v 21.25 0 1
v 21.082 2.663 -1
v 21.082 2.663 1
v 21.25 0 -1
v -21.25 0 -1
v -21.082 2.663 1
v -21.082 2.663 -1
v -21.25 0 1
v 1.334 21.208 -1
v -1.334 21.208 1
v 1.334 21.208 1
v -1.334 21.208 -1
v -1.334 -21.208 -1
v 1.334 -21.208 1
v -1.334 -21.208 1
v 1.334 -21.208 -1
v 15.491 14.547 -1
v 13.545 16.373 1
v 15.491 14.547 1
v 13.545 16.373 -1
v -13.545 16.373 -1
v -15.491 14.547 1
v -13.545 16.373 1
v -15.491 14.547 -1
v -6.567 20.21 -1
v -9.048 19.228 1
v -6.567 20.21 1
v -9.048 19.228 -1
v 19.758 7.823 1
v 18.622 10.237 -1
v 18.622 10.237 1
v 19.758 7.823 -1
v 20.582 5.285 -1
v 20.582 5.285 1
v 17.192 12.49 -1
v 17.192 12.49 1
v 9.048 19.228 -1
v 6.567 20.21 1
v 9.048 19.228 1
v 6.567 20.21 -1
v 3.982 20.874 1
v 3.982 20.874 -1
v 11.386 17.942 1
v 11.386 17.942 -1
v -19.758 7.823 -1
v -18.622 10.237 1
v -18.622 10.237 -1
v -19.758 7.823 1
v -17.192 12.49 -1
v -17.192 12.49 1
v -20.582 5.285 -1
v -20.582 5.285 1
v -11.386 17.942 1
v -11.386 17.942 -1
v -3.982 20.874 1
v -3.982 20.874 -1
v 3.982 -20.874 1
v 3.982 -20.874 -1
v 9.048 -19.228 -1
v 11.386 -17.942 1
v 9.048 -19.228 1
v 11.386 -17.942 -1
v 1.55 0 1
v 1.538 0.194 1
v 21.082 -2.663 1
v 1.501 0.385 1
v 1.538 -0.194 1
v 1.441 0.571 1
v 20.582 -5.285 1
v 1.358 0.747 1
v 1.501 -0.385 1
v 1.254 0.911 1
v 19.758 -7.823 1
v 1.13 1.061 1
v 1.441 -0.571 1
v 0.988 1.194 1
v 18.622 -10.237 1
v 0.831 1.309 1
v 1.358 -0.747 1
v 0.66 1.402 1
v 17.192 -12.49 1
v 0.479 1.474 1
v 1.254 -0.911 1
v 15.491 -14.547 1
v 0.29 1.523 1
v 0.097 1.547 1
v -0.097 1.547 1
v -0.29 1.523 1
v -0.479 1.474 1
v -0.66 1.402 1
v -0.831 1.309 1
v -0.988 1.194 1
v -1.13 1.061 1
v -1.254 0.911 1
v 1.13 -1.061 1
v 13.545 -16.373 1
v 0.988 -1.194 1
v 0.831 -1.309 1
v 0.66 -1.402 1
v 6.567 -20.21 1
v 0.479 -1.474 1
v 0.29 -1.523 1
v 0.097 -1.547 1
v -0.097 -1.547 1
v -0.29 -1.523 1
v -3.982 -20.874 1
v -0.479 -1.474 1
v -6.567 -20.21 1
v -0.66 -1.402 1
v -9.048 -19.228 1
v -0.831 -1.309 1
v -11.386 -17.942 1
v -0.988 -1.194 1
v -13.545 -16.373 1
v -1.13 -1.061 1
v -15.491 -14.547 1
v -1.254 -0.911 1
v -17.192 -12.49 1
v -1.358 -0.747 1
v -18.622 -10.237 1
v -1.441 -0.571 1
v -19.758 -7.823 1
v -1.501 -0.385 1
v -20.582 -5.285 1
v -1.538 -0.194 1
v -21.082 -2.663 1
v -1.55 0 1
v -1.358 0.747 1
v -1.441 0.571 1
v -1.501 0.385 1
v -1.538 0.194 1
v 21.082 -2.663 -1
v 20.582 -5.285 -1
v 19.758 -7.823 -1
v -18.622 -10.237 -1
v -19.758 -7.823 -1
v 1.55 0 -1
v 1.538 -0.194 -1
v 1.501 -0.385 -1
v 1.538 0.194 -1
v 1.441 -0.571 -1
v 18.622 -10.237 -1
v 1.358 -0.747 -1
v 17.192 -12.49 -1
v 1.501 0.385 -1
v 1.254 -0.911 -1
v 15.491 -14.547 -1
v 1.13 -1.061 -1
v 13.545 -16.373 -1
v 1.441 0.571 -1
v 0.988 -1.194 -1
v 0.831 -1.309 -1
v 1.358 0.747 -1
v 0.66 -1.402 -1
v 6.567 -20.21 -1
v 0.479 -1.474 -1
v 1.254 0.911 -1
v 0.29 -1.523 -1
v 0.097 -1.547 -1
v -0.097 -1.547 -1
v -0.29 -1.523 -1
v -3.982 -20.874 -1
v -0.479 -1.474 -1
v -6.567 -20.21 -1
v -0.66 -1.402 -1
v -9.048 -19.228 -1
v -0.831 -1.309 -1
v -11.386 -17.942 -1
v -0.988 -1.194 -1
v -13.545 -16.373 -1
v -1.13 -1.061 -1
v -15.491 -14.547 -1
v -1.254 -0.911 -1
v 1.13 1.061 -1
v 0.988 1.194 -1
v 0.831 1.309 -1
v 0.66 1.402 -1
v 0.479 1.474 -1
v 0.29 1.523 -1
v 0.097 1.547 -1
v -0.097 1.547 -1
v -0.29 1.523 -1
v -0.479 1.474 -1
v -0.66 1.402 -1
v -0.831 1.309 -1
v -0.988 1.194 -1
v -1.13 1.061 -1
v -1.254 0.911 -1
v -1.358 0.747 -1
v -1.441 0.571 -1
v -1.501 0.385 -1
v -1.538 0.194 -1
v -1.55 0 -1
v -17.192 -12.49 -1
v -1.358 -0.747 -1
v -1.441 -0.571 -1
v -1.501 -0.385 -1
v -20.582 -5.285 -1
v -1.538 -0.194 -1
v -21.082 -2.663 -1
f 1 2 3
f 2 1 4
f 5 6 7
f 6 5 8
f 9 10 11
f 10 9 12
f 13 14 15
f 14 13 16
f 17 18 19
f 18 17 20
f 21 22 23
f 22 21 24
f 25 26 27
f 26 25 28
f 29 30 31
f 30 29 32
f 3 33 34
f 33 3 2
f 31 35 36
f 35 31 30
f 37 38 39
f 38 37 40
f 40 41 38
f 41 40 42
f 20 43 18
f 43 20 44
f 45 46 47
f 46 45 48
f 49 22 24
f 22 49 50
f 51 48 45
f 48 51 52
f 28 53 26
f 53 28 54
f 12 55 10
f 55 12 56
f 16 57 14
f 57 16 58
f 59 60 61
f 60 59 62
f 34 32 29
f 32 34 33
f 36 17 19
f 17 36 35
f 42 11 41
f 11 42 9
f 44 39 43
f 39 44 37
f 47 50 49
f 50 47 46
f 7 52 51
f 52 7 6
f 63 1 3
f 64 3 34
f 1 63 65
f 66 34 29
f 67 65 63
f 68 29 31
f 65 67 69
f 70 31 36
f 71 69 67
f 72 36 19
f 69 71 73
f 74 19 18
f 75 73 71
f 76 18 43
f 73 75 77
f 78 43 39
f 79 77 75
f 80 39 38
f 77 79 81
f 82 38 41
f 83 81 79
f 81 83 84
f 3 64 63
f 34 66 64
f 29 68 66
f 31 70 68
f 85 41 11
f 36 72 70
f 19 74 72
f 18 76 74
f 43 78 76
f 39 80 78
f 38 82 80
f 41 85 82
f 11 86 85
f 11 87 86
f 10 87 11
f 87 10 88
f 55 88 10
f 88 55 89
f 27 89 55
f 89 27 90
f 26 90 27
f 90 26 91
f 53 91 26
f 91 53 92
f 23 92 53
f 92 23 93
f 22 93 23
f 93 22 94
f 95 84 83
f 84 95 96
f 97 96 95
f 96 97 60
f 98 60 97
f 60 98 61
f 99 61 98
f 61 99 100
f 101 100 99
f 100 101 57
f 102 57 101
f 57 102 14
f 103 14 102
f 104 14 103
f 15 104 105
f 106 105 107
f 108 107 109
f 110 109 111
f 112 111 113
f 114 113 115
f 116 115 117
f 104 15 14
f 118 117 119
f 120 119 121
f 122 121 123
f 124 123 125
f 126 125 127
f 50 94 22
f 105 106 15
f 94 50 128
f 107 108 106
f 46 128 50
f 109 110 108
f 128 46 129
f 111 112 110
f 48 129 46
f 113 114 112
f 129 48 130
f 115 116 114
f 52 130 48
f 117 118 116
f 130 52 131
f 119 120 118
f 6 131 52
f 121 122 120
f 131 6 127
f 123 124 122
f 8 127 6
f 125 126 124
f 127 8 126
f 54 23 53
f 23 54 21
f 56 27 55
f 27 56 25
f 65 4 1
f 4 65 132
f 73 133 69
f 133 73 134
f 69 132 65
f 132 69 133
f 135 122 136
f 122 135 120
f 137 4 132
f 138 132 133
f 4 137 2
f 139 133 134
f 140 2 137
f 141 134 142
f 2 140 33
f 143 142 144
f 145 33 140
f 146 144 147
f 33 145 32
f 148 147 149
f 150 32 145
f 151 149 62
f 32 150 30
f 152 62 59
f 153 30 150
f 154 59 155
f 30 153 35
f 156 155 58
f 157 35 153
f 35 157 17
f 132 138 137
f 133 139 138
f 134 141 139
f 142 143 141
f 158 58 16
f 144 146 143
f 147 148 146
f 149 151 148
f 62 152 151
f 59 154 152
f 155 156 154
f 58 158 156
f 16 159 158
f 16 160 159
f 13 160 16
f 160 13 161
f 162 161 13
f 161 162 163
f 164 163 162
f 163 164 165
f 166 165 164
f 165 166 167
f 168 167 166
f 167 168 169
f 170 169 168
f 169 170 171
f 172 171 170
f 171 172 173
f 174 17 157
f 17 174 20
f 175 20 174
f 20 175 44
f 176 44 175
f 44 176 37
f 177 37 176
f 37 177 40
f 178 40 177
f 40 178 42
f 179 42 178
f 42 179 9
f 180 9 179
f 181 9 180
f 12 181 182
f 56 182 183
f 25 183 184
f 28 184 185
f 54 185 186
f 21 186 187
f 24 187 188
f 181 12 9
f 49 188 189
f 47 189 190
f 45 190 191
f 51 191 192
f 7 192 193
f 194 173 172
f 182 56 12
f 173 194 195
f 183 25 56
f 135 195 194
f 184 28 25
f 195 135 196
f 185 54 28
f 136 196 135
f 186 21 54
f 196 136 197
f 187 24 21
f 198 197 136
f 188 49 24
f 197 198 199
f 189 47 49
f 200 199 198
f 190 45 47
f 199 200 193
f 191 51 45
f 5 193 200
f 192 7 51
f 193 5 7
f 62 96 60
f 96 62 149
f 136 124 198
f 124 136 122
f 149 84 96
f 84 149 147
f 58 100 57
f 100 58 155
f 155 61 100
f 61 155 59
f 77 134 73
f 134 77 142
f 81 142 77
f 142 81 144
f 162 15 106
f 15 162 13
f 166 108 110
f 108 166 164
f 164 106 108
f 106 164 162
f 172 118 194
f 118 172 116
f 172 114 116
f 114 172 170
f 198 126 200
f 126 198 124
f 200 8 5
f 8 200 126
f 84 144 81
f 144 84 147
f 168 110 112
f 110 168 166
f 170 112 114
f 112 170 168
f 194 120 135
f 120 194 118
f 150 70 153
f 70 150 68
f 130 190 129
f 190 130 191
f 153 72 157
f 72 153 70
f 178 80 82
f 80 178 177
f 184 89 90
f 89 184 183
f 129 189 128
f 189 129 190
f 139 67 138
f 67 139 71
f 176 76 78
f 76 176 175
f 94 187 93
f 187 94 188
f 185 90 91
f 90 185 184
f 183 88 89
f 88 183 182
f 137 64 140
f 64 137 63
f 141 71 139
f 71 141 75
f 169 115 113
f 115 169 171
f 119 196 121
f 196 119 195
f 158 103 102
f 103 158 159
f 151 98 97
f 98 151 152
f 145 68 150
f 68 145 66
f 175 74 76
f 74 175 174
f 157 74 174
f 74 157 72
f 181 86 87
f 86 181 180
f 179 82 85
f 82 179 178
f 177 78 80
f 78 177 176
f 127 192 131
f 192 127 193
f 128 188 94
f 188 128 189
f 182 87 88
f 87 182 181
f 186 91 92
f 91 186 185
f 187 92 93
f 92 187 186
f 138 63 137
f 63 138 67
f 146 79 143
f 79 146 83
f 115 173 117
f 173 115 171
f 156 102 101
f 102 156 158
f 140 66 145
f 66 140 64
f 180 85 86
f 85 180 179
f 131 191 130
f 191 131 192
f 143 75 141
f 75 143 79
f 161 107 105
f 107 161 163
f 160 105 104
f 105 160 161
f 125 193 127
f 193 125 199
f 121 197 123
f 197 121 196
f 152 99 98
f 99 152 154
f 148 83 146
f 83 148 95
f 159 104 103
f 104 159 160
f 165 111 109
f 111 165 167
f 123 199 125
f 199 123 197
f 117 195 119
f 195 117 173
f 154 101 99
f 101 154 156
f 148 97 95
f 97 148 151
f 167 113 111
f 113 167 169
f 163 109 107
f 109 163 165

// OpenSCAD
$fn = 50;


difference() {
	union() {
		translate(v = [0, 0, -1.0000000000]) {
			cylinder(h = 2, r = 21.2500000000);
		}
	}
	union() {
		translate(v = [0, 0, -100.0000000000]) {
			cylinder(h = 200, r = 1.5500000000);
		}
	}
}
